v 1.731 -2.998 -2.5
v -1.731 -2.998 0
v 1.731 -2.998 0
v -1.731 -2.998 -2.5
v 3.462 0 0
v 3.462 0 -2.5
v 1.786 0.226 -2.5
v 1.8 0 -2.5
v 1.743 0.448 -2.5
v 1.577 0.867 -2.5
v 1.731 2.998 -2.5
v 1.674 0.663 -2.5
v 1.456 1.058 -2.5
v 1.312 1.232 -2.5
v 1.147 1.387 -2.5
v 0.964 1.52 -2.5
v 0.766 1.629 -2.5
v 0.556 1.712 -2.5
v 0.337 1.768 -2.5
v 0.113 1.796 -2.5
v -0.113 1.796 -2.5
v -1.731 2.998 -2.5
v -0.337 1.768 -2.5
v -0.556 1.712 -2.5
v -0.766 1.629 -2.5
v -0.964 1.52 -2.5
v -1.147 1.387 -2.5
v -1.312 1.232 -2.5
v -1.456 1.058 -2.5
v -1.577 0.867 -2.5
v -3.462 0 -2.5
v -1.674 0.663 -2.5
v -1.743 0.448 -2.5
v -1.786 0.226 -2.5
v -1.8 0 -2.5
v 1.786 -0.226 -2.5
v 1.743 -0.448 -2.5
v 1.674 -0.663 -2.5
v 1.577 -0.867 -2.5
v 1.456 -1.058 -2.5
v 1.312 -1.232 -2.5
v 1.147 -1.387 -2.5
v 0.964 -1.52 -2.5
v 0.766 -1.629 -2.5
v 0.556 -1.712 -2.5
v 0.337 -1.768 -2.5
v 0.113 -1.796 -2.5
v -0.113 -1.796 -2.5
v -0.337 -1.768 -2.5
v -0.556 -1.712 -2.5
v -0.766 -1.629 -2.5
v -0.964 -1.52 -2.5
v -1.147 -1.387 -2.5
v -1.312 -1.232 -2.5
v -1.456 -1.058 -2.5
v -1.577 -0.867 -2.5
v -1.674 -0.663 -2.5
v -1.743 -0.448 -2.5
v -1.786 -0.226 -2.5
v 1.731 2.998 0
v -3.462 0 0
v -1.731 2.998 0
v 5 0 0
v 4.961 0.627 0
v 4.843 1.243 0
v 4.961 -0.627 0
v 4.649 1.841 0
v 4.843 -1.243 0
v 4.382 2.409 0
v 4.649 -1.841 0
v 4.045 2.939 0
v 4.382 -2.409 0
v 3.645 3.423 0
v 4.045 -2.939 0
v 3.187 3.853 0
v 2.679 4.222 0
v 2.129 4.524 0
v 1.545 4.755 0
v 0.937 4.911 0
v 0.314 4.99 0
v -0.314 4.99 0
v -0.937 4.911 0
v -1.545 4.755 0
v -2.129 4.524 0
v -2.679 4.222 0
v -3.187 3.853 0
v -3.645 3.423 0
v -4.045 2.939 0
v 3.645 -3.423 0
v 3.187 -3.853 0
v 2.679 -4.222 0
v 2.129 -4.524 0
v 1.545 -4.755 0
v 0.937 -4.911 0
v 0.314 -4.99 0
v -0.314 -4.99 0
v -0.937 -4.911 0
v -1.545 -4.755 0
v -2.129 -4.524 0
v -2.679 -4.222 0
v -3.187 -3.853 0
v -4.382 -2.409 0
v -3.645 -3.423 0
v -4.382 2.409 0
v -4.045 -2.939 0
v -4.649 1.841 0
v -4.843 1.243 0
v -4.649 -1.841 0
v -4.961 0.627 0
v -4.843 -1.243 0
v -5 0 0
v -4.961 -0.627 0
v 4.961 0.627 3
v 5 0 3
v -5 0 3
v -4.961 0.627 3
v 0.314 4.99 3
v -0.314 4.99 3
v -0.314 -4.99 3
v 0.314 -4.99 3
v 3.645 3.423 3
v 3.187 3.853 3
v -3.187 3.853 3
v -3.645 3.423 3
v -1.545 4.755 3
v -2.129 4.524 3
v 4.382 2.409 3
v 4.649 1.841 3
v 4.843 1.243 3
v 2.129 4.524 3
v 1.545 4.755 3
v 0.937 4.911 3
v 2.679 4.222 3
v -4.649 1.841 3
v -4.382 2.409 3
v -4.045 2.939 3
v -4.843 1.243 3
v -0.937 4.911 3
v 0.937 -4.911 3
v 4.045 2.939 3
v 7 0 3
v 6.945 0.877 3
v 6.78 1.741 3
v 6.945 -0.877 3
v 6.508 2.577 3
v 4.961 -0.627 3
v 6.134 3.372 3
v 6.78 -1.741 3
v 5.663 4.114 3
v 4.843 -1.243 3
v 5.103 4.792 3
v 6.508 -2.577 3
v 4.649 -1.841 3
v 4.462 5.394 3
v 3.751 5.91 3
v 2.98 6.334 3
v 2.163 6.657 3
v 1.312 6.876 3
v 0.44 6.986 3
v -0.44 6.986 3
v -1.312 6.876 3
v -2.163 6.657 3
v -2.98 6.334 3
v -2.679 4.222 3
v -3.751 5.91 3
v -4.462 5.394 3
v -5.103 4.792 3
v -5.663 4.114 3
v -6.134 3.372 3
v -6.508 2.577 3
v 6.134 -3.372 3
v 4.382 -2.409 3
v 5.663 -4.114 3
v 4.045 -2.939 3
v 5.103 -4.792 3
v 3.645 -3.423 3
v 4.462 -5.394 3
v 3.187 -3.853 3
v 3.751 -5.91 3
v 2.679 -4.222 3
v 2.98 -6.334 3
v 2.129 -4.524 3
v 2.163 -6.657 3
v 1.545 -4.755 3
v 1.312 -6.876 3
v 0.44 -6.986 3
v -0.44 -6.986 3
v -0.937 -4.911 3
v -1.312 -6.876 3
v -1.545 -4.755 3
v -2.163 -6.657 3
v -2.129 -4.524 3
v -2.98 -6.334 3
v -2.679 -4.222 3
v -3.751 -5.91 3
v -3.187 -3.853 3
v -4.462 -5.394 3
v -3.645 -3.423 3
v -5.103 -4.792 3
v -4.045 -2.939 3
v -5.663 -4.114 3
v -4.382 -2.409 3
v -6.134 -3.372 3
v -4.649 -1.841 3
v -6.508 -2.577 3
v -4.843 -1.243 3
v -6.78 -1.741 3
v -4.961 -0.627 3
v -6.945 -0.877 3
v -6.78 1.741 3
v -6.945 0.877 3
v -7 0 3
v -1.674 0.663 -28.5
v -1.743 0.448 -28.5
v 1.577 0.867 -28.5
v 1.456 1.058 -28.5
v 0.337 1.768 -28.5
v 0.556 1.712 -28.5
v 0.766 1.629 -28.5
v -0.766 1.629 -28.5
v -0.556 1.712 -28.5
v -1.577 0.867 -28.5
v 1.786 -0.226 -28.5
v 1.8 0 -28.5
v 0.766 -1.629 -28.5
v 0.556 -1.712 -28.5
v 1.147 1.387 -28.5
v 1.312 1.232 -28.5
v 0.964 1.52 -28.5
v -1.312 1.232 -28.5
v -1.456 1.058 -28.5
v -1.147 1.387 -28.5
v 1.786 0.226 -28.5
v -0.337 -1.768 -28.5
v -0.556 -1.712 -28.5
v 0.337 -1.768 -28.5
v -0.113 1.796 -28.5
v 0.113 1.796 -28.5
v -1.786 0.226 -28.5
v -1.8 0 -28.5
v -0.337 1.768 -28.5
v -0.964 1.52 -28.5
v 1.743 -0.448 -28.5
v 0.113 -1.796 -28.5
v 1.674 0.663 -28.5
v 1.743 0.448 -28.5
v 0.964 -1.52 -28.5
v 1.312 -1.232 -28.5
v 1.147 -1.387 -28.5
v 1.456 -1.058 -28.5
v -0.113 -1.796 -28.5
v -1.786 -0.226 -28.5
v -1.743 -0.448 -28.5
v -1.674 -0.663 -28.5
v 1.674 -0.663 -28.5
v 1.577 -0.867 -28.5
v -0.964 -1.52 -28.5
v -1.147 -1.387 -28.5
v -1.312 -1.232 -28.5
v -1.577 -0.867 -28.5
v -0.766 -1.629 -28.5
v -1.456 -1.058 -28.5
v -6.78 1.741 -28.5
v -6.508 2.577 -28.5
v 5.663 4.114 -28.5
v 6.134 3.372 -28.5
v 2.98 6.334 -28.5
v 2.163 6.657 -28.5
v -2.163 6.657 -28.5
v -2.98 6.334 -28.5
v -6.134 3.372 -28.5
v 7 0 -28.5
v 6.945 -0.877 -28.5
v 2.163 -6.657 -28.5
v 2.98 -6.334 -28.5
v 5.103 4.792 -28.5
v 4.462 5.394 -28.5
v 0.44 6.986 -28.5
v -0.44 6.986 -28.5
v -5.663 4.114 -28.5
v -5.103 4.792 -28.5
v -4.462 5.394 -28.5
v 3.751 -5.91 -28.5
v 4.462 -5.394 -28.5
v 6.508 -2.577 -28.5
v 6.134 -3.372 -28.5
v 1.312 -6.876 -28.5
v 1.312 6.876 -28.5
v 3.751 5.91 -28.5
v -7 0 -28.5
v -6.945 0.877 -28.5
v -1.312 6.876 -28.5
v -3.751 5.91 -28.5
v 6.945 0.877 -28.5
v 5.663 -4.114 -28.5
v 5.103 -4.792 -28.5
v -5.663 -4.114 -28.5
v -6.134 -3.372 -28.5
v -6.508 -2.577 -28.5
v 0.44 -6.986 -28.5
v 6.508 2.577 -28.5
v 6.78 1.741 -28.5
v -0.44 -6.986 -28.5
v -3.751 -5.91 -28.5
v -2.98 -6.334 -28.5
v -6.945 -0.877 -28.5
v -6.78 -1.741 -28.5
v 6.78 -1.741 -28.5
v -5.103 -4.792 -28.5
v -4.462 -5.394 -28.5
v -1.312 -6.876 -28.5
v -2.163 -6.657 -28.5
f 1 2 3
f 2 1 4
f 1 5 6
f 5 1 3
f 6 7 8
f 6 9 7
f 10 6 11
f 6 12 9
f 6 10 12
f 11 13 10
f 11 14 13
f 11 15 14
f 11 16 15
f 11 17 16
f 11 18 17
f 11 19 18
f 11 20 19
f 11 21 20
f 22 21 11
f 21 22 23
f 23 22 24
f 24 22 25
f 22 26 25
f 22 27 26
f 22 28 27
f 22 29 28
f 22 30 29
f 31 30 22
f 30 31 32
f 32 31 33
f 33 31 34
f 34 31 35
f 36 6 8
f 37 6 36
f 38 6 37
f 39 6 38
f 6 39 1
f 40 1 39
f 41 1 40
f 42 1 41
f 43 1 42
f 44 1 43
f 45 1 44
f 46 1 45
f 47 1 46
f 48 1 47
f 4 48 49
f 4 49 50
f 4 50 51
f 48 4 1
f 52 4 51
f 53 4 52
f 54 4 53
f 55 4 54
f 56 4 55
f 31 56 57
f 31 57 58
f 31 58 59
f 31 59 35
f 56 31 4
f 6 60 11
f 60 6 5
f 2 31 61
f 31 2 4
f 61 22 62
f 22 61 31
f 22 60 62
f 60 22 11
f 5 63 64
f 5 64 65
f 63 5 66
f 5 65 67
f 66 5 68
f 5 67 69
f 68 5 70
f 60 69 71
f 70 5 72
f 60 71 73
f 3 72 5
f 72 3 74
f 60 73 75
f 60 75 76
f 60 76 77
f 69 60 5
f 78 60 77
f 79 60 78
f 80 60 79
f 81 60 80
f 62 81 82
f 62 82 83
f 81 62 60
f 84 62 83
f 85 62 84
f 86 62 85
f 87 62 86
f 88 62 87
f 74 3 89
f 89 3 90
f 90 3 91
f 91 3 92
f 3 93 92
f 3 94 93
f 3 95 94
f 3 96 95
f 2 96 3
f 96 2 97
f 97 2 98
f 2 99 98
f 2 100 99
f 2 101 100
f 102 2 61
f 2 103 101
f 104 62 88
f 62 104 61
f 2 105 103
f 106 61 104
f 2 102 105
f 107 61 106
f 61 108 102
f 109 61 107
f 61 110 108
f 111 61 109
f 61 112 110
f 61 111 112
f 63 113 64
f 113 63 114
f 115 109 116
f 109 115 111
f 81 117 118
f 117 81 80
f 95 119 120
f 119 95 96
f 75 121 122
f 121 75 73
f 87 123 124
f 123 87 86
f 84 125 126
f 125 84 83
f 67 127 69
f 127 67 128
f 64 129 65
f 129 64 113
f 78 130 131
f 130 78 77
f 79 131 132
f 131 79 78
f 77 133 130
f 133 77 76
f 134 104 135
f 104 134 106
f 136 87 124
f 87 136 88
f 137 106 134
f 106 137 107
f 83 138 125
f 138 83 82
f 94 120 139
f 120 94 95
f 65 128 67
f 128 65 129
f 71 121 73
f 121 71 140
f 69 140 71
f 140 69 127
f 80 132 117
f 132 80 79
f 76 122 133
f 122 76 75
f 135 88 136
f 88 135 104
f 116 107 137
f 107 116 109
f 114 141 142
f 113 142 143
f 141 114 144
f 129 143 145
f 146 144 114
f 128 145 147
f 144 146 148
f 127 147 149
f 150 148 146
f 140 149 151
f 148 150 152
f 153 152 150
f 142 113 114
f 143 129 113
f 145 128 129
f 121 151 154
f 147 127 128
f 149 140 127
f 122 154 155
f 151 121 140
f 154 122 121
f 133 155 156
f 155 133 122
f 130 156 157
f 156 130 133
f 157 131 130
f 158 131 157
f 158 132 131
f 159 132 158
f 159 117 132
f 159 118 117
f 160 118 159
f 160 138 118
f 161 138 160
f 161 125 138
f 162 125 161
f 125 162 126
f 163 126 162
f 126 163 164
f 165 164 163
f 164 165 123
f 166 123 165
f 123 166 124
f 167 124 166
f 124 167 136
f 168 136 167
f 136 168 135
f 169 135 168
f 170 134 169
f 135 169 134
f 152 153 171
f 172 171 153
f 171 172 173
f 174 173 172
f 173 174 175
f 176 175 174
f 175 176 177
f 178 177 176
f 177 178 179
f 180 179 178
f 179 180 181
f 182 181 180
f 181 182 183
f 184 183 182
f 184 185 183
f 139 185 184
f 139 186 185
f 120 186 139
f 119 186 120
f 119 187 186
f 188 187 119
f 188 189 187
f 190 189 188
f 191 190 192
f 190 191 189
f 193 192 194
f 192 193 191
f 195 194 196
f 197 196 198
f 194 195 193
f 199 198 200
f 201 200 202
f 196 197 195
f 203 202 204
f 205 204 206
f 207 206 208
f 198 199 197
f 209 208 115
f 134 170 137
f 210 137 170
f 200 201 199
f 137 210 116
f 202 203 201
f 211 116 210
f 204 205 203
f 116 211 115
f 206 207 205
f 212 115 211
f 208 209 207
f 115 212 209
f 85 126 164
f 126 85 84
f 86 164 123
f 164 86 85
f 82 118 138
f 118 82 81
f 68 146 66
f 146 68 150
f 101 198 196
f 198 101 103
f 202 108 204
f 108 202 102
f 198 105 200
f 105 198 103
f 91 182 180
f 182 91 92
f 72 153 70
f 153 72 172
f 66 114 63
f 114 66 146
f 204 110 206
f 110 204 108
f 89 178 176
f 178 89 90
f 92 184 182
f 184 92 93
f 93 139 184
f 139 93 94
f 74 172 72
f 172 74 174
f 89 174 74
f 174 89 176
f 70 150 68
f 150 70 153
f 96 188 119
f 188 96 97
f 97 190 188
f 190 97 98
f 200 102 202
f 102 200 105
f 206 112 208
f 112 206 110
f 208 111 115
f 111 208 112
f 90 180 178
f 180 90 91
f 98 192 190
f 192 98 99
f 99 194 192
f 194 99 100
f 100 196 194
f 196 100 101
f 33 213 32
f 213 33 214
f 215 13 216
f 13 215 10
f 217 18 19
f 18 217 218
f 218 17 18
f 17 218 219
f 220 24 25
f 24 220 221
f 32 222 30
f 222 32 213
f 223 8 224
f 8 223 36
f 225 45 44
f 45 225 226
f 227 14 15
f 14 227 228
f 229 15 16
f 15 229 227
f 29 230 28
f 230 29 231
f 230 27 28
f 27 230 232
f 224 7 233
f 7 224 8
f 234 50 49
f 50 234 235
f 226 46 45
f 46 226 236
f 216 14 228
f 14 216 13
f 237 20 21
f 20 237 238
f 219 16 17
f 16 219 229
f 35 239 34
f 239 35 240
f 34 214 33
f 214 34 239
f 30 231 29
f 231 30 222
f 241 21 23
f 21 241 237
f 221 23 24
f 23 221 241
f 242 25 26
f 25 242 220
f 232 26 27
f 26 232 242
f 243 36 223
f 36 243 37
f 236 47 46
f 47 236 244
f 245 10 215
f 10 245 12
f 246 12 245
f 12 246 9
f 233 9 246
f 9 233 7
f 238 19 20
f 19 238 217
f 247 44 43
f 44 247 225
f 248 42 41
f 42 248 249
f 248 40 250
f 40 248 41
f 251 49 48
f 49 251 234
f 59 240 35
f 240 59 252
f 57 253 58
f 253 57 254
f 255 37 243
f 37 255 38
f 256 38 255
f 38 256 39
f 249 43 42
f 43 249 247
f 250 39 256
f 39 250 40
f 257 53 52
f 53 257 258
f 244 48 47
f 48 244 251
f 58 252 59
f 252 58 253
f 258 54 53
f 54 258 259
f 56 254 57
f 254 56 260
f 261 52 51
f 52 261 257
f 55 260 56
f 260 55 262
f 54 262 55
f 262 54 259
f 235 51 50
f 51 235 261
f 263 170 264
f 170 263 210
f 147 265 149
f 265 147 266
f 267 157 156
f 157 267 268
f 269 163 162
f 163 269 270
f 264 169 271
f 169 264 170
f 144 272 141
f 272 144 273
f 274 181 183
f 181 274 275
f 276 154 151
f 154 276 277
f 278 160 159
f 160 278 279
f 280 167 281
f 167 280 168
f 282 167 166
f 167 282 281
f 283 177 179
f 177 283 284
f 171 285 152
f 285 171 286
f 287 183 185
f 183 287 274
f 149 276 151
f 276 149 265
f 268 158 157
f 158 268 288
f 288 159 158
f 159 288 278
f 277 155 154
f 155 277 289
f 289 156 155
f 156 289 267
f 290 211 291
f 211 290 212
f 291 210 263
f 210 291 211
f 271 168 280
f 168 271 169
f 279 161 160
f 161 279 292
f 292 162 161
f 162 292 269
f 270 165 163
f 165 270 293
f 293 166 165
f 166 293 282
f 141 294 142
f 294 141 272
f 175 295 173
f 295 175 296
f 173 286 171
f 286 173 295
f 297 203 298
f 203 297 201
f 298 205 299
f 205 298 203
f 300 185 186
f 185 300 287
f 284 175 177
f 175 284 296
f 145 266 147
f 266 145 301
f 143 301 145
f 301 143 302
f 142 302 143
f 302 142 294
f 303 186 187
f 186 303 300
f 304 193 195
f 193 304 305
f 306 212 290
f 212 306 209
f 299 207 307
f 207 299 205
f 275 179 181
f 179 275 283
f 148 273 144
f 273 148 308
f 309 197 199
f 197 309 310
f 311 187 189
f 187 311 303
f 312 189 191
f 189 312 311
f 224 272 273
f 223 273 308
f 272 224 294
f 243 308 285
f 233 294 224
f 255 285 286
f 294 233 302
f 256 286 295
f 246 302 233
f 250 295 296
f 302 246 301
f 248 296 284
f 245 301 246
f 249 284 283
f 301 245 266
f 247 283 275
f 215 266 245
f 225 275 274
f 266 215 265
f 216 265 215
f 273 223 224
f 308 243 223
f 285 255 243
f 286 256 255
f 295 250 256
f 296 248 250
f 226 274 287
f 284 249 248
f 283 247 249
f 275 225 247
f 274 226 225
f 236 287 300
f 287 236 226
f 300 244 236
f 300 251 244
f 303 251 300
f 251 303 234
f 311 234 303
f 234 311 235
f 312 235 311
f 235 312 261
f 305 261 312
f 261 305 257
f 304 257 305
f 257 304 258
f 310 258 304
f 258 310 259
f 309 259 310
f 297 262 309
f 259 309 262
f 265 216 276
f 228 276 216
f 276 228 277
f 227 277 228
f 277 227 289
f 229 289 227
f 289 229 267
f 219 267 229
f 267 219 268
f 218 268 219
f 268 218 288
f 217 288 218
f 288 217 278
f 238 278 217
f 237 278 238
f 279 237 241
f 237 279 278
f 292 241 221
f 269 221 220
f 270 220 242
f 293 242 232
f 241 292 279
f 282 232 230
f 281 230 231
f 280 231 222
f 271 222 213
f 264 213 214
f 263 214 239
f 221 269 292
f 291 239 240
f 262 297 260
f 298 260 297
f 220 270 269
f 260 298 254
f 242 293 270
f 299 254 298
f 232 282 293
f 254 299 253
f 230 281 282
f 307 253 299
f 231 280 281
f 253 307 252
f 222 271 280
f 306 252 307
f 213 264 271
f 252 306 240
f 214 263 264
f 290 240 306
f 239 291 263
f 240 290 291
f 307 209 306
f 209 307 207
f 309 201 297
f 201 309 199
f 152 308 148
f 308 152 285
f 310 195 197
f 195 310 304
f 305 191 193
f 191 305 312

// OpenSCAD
$fn = 50;

difference() {
	union() {
		translate(v = [0, 0, -28.5]) {
			cylinder(h = 31.5, r = 7.0);
		}
	}
	union() {
		translate(v = [0, 0, 0]) {
			rotate(a = [0, 0, 0]) {
				difference() {
					union() {
						translate(v = [0, 0, -2.5]) {
							linear_extrude(height = 2.5) {
								polygon(points = [[3.4619999999999997, 0.0], [1.7310000000000003, 2.9981799479017264], [-1.7309999999999992, 2.9981799479017264], [-3.4619999999999997, 4.2397272186481365e-16], [-1.7310000000000014, -2.998179947901726], [1.7309999999999977, -2.9981799479017277]]);
							}
						}
					}
					union();
				}
			}
		}
		#cylinder(h = 3, r = 5.0);
		#translate(v = [0, 0, -100.0]) {
			cylinder(h = 200, r = 1.8);
		}
	}
}
